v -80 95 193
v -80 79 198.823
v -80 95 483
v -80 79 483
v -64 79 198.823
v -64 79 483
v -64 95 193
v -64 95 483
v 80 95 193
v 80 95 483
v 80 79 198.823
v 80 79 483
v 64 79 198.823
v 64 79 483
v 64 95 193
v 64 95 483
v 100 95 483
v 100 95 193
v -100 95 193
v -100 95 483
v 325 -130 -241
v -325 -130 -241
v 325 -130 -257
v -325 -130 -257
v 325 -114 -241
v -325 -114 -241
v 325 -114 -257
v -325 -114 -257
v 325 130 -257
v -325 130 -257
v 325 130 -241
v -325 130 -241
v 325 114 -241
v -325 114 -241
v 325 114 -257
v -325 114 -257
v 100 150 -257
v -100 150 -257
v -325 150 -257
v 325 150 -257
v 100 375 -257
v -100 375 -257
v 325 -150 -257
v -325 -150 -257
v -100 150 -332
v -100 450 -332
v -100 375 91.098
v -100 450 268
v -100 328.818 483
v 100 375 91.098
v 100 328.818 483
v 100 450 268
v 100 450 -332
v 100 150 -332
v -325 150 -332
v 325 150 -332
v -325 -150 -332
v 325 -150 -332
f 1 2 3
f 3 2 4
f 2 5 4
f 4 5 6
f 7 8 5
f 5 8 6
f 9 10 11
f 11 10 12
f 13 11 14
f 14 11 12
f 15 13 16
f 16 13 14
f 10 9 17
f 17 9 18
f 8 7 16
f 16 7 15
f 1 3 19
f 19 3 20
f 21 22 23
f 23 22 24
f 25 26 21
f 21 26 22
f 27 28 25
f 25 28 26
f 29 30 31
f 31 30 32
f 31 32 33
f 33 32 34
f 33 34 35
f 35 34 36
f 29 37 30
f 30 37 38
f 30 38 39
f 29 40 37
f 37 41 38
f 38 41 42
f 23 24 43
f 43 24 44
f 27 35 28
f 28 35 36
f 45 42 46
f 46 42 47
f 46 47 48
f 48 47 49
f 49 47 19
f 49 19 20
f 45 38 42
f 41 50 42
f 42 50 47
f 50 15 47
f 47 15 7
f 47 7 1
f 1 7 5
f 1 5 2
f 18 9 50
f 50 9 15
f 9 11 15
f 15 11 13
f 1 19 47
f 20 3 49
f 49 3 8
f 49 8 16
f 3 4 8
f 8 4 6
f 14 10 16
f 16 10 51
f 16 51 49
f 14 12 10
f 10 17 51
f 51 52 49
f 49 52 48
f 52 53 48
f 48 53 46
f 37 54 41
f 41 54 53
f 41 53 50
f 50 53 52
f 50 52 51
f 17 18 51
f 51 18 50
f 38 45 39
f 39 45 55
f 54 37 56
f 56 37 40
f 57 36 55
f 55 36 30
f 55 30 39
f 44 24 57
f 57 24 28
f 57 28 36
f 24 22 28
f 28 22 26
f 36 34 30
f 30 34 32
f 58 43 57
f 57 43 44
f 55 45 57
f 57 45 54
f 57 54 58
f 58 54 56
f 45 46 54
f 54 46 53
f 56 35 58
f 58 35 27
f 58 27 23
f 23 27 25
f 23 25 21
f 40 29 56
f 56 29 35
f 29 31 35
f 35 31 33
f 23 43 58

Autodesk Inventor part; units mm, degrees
ref_plane "YZ Plane" through (0, 0, 0) normal (1, 0, 0) x (0, 1, 0)
ref_plane "XZ Plane" through (0, 0, 0) normal (0, 1, 0) x (-1, 0, 0)
ref_plane "XY Plane" through (0, 0, 0) normal (0, 0, 1) x (1, 0, 0)
sketch "Sketch1" plane through (0, 0, 0) normal (1, 0, 0) x (0, 1, 0)
  line L0 (0, 9.8901) -> (0, -9.3874)
  line L1 (-150, -257) -> (150, -257)
  line L2 (150, -257) -> (150, -332)
  line L3 (150, -332) -> (-150, -332)
  line L4 (-150, -332) -> (-150, -257)
  point P0 (0, 0)
  dimension "d0" = 257
  dimension "d1" = 300
  dimension "d2" = 75
extrude "Extrusion1" add sketch "Sketch1" along normal mid plane 650
sketch "Sketch2" plane through (0, 0, 0) normal (1, 0, 0) x (0, 1, 0)
  line L0 (450, -332) -> (450, 268)
  line L1 (450, 268) -> (328.8182, 483)
  line L2 (295, 543) -> (95, 543) construction
  line L3 (95, 483) -> (95, 193)
  line L4 (95, 193) -> (375, 193) construction
  line L5 (375, 91.0981) -> (375, -257)
  line L6 (-150, -332) -> (150, -332) projected
  line L7 (150, -332) -> (150, -257) projected
  line L8 (150, -332) -> (450, -332)
  line L9 (150, -257) -> (-150, -257) projected
  line L10 (150, -332) -> (150, -257)
  line L11 (150, -257) -> (150, -332) projected
  line L12 (150, -257) -> (375, -257)
  line L13 (95, 193) -> (375, 91.0981)
  line L14 (328.8182, 483) -> (95, 483)
  point P0 (0, 0)
  dimension "d7" = 75
  dimension "d8" = 300
  dimension "d9" = 600
  dimension "d10" = 280
  dimension "d11" = 450
  dimension "d12" = 350
  dimension "d13" = 200
  dimension "d22" = 60
extrude "Extrusion2" add sketch "Sketch2" along normal mid plane 200
sketch "Sketch3" plane through (-325, 0, 0) normal (-1, 0, 0) x (0, 0, 1)
  line L0 (-257, 150) -> (-257, -150) projected
  line L1 (-241, 130) -> (-257, 130)
  line L2 (-257, 130) -> (-257, 114)
  line L3 (-257, 114) -> (-241, 114)
  line L4 (-241, 114) -> (-241, 130)
  line L5 (-257, 150) -> (-332, 150) projected
  line L6 (-111.2497, 0) -> (-314.6527, 0)
  line L7 (-241, -130) -> (-257, -130)
  line L8 (-257, -130) -> (-257, -114)
  line L9 (-257, -114) -> (-241, -114)
  line L10 (-241, -114) -> (-241, -130)
  point P0 (0, 0)
  dimension "d23" = 20
  dimension "d24" = 16
  dimension "d25" = 16
extrude "Extrusion3" add sketch "Sketch3" against normal up to surface (650 mm away)
sketch "Sketch4" plane through (-100, 95, 483) normal (0, 0, 1) x (1, 0, 0)
  line L0 (100, -95) -> (100, 134.7598)
  line L1 (0, 0) -> (200, 0) projected
  line L2 (20, 0) -> (36, 0)
  line L3 (36, 0) -> (36, -16)
  line L4 (36, -16) -> (20, -16)
  line L5 (20, -16) -> (20, 0)
  line L6 (0, 0) -> (0, 233.8182) projected
  line L7 (180, 0) -> (164, 0)
  line L8 (164, 0) -> (164, -16)
  line L9 (164, -16) -> (180, -16)
  line L10 (180, -16) -> (180, 0)
  point P0 (36, 0)
  dimension "d28" = 20
  dimension "d29" = 16
  dimension "d30" = 16
extrude "Extrusion4" add sketch "Sketch4" against normal up to surface surface through (0, 95, 193) normal (0, -0.342, -0.9397)
properties part number "base"
